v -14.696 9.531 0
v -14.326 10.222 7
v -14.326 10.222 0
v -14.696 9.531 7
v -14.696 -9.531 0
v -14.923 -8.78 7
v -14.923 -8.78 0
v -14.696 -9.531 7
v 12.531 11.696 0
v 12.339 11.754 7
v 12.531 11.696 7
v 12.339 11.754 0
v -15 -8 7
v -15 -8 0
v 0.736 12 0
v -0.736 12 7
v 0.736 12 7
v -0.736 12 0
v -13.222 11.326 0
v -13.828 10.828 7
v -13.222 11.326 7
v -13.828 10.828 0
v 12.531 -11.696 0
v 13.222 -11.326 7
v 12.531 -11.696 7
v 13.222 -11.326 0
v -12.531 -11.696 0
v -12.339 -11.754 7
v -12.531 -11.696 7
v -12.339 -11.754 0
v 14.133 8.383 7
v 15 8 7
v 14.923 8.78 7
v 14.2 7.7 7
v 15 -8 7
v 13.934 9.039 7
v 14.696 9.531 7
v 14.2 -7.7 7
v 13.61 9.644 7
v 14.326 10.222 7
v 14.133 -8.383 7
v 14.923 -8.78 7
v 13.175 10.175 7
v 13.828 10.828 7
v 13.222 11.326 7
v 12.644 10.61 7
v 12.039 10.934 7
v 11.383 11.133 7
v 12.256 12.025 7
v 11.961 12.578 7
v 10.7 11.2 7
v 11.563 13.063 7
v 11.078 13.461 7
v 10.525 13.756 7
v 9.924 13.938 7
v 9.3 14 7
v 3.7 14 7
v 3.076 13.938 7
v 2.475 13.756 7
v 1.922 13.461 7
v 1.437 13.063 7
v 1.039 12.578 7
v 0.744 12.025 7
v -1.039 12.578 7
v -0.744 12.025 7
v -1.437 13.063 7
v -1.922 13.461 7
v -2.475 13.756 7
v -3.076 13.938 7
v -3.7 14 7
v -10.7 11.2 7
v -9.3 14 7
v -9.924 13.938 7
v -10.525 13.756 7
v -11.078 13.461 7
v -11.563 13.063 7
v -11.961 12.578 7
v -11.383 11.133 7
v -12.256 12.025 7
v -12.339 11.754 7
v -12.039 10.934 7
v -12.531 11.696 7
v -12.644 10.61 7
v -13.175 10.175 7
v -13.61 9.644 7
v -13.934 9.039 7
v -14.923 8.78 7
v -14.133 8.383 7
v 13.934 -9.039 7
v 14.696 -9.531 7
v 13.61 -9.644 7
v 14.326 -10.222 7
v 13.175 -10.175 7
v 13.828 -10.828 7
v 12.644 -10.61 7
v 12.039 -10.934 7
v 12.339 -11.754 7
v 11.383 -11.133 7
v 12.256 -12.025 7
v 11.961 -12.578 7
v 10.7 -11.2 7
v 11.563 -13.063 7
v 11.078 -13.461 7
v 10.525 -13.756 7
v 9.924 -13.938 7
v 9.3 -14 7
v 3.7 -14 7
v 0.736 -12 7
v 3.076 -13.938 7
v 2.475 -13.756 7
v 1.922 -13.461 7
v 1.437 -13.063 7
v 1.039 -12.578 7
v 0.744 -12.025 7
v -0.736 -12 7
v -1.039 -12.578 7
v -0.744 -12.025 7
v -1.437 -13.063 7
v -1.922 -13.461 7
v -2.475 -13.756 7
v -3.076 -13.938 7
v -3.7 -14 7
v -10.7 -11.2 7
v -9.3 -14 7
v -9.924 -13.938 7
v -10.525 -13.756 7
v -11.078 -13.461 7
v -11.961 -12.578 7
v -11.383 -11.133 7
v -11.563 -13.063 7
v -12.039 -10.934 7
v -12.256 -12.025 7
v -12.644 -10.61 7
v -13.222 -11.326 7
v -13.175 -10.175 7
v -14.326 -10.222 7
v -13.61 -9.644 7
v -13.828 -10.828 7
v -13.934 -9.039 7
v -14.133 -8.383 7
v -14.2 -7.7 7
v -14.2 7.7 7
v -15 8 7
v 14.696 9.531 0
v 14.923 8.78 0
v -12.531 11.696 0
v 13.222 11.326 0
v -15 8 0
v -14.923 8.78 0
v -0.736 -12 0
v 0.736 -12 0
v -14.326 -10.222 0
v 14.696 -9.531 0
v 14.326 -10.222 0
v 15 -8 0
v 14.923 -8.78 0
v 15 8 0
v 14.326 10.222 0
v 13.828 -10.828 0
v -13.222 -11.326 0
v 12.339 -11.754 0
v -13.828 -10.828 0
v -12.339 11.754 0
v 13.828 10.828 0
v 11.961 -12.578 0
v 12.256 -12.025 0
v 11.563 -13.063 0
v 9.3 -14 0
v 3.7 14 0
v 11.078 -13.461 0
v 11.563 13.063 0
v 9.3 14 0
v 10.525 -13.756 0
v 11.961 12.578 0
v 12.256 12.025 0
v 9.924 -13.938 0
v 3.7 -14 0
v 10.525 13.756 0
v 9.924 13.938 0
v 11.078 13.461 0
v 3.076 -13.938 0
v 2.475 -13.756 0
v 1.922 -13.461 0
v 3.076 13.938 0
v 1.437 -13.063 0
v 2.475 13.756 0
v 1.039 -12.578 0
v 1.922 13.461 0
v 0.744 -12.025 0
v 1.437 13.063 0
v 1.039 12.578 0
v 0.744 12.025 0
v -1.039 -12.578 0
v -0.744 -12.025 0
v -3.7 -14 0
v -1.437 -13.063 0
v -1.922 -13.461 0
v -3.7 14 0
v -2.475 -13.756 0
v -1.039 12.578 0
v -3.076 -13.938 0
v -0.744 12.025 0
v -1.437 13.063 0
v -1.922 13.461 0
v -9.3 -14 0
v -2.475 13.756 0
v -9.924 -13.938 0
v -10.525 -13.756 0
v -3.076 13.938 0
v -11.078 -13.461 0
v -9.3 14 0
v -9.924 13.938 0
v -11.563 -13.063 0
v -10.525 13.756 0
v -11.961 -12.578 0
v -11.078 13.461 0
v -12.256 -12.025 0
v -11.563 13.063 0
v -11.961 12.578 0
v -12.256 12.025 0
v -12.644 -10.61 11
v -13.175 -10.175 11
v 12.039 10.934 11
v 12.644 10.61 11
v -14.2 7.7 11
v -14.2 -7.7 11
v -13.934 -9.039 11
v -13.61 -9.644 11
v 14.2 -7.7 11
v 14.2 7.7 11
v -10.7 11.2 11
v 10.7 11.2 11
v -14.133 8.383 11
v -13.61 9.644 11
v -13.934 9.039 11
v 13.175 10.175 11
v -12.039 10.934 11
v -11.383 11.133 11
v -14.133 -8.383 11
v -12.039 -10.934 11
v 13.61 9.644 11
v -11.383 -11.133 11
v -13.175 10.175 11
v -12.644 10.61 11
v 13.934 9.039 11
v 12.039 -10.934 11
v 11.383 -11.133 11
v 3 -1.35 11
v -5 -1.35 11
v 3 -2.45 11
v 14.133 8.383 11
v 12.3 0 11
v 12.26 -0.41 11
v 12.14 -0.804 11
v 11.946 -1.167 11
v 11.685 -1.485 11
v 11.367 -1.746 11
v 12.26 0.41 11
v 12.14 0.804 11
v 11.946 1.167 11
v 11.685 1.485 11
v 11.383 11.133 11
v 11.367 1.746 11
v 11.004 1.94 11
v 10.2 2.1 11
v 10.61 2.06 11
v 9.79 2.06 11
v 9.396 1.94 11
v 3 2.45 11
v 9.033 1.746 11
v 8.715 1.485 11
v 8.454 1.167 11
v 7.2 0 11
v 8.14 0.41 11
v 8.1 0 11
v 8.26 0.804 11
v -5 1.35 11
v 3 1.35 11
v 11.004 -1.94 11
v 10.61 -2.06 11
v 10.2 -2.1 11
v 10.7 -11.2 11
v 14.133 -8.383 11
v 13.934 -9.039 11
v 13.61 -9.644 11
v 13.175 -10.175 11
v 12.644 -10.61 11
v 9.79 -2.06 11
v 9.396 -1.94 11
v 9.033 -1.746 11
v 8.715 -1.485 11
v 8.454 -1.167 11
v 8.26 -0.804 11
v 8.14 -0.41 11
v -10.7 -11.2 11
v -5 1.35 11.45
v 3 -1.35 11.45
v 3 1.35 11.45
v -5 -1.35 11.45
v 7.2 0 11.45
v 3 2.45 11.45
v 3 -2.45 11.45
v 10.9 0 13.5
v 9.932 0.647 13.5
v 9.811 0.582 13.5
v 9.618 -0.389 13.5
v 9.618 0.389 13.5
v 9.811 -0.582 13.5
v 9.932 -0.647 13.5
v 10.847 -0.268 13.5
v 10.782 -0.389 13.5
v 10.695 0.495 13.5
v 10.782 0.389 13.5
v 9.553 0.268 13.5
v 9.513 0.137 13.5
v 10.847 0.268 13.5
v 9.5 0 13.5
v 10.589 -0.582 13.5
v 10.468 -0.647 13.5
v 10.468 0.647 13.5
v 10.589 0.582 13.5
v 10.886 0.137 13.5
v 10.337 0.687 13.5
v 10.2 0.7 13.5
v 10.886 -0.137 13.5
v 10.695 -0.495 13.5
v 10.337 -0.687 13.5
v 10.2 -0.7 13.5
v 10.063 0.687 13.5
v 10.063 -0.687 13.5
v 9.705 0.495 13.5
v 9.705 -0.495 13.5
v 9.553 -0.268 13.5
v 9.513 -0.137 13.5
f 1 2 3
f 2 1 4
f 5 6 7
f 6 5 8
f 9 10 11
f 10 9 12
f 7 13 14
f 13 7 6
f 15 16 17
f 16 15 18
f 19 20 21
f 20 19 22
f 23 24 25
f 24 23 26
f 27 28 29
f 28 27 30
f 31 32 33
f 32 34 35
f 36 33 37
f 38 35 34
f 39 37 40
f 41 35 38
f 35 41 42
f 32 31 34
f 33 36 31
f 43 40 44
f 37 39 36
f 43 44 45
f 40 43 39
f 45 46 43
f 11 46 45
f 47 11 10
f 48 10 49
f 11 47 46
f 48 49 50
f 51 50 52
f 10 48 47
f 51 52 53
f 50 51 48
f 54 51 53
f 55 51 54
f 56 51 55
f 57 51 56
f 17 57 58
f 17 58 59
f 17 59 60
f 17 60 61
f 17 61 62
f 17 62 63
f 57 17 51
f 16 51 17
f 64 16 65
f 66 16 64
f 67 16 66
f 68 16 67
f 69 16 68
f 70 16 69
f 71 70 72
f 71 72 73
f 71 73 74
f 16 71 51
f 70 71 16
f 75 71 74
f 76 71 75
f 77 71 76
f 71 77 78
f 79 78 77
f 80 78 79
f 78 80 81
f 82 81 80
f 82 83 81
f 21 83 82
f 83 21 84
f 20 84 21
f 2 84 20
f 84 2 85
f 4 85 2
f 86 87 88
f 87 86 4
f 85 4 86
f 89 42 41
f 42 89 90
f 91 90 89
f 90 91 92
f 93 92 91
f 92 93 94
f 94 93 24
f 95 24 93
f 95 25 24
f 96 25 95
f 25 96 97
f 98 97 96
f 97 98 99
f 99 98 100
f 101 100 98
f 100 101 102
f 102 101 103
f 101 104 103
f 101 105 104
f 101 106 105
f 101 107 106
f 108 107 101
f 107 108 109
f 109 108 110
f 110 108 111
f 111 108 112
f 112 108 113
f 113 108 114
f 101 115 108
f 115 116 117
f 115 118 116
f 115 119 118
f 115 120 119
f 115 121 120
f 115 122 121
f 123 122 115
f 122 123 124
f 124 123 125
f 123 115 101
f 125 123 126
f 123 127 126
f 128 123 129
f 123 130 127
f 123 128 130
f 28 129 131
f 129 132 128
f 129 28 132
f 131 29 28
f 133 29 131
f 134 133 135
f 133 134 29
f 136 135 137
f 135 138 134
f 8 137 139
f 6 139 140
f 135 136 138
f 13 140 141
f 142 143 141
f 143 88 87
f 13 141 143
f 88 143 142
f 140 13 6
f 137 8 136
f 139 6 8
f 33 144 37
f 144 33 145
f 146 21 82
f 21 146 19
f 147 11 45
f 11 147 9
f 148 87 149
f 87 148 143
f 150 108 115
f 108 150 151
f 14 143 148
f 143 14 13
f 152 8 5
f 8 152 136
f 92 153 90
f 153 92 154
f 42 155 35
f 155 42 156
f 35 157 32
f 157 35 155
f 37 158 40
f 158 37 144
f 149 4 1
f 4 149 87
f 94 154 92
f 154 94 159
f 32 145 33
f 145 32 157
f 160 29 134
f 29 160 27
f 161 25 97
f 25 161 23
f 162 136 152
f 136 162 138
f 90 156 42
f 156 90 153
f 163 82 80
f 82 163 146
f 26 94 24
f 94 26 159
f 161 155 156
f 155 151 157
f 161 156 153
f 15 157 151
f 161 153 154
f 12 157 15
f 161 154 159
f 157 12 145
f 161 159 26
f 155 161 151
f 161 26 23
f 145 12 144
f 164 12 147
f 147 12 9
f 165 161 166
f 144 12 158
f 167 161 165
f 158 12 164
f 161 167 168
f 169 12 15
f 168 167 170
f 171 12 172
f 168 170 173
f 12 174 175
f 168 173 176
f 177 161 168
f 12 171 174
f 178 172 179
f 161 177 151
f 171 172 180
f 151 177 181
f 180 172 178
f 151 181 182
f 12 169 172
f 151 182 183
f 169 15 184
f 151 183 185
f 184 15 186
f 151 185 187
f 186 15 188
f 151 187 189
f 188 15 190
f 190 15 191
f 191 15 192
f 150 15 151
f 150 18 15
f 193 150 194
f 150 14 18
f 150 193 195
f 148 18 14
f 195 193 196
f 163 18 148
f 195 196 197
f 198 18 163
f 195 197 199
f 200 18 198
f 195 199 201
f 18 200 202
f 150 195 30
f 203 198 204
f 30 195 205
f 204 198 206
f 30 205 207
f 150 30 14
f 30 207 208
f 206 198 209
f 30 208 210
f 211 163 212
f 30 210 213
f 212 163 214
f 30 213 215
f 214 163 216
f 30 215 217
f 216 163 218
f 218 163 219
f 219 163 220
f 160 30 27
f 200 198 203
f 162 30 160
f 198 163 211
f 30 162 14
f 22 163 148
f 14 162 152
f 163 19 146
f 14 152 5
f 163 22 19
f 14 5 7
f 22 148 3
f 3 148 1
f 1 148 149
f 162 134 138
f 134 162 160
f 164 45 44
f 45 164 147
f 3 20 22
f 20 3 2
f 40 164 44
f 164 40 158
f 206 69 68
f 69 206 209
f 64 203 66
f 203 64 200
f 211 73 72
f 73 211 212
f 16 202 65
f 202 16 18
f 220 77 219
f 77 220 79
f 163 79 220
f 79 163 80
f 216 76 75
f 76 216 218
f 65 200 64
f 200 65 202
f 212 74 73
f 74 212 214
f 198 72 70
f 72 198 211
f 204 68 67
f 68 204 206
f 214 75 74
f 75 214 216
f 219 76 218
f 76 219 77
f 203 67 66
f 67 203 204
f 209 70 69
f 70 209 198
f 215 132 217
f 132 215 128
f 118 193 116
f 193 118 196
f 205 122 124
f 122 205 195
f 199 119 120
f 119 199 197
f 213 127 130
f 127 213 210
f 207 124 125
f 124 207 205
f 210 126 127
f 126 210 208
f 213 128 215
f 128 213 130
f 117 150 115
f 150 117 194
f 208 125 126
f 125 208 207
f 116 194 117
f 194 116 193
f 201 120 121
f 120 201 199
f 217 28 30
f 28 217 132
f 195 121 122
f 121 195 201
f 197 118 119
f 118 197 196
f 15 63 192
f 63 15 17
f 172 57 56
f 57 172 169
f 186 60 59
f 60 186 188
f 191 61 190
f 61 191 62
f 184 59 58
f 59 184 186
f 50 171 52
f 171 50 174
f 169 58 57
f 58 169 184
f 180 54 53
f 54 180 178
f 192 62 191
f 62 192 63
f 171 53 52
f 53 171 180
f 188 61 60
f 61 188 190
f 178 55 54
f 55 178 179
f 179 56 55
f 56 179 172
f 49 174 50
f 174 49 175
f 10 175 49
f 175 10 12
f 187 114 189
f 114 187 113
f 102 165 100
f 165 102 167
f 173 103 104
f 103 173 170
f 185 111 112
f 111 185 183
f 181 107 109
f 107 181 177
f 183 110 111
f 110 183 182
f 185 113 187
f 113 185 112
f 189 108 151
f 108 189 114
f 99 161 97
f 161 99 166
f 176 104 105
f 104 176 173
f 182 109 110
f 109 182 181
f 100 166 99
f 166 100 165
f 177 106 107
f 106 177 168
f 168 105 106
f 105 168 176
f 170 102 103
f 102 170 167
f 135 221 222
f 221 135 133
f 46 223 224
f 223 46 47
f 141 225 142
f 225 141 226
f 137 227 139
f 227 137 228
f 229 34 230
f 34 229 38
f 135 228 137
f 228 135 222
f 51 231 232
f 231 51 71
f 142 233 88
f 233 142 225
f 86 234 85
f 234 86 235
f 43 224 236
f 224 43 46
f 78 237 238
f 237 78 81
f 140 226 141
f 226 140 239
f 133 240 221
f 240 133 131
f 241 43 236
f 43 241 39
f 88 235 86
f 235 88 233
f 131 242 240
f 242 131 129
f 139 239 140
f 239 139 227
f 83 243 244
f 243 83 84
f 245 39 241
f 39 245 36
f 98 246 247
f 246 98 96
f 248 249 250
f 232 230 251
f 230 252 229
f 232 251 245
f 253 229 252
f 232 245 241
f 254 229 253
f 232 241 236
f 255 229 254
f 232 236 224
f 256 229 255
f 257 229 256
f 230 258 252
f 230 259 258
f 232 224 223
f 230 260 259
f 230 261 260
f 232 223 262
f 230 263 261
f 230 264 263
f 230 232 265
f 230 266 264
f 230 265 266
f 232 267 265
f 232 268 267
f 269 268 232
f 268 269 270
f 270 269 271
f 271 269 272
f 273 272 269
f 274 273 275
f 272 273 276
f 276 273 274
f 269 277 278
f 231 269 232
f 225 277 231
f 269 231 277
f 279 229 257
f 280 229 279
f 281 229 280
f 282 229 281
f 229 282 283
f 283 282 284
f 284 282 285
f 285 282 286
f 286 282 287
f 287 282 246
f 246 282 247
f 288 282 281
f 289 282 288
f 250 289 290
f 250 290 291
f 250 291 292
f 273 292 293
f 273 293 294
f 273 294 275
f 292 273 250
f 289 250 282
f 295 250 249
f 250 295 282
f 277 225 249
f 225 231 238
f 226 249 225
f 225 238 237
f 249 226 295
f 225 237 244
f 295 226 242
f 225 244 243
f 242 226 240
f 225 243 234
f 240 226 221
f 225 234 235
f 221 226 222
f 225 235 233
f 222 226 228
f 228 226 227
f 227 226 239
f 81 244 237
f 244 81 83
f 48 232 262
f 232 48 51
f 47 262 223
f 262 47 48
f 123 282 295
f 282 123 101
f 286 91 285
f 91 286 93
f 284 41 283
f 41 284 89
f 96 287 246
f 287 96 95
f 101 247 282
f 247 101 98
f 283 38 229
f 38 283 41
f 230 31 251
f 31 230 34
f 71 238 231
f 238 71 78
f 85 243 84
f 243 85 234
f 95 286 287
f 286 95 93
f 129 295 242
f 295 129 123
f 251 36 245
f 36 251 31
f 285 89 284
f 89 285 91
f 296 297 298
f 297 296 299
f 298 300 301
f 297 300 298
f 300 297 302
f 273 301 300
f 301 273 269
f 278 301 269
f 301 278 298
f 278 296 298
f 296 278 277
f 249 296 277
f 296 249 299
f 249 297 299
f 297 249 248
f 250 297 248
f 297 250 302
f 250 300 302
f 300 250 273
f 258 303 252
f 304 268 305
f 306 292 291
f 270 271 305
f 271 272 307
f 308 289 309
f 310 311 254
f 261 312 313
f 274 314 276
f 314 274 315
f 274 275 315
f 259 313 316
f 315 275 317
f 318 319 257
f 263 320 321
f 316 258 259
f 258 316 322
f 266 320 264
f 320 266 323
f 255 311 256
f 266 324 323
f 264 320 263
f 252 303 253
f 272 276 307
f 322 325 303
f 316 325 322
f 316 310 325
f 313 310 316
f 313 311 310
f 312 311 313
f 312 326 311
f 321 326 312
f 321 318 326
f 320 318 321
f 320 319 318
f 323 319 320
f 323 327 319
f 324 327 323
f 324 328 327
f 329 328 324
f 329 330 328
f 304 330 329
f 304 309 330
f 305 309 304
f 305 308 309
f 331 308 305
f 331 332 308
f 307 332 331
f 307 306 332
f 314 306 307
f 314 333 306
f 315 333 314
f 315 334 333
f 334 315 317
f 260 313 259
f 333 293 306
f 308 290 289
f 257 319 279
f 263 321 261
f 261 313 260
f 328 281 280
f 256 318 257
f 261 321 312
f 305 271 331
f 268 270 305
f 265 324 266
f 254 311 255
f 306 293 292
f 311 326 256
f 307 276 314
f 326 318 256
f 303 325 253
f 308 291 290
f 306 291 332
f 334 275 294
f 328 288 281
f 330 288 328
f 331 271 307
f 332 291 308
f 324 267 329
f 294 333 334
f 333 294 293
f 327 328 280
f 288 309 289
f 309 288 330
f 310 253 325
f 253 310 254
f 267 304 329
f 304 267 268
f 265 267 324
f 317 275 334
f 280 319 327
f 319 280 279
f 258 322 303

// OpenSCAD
/*
  Swarm Robot — fast, support-free visual prop
  Units: millimetres.  Export as STL (F6, then File > Export > Export as STL).
  Designed to print flat-side down without supports on a Bambu A1.
*/

$fn = 32;                 // Smooth enough, keeps STL compact

// Overall chassis: 30 x 24 x 11 mm (sensor reaches 13.5 mm).
// The taller straight-sided body reads as a boxy rover while remaining support-free.
body_length = 30;
body_width  = 24;
corner_r    = 4;
base_h      = 7;
top_h       = 4;

module rounded_rect_2d(length, width, radius) {
    hull()
        for (x = [-length/2 + radius, length/2 - radius])
            for (y = [-width/2 + radius, width/2 - radius])
                translate([x, y]) circle(r = radius);
}

// Wheel-shaped plan-view pads: no horizontal overhangs, so no support needed.
module wheel_pad(side, x_pos) {
    translate([x_pos, side * (body_width/2 - 1.2), 0])
        hull() {
            translate([-2.8, 0]) cylinder(h = base_h, r = 3.2);
            translate([ 2.8, 0]) cylinder(h = base_h, r = 3.2);
        }
}

module chassis() {
    union() {
        // Low, wider silhouette includes the two side wheel bumps.
        linear_extrude(height = base_h)
            rounded_rect_2d(body_length, body_width, corner_r);
        wheel_pad( 1, -6.5);
        wheel_pad(-1, -6.5);
        wheel_pad( 1,  6.5);
        wheel_pad(-1,  6.5);

        // Slight step gives the wheel pads a clearly visible separate look.
        translate([0, 0, base_h])
            linear_extrude(height = top_h)
                rounded_rect_2d(body_length - 1.6, body_width - 1.6, corner_r - 0.5);
    }
}

module direction_arrow() {
    // Embossed arrow points toward the front (+X).  Contrasting filament works well.
    translate([2.0, 0, base_h + top_h])
        linear_extrude(height = 0.45)
            polygon(points = [
                [-7.0, -1.35], [ 1.0, -1.35], [ 1.0, -2.45],
                [ 5.2,  0.00], [ 1.0,  2.45], [ 1.0,  1.35],
                [-7.0,  1.35]
            ]);
}

module sensor() {
    // Tapered 2.5 mm beacon at the front; 45°-safe profile for FDM printing.
    translate([10.2, 0, base_h + top_h])
        cylinder(h = 2.5, r1 = 2.1, r2 = 0.7);
}

module swarm_robot() {
    union() {
        chassis();
        direction_arrow();
        sensor();
    }
}

swarm_robot();
